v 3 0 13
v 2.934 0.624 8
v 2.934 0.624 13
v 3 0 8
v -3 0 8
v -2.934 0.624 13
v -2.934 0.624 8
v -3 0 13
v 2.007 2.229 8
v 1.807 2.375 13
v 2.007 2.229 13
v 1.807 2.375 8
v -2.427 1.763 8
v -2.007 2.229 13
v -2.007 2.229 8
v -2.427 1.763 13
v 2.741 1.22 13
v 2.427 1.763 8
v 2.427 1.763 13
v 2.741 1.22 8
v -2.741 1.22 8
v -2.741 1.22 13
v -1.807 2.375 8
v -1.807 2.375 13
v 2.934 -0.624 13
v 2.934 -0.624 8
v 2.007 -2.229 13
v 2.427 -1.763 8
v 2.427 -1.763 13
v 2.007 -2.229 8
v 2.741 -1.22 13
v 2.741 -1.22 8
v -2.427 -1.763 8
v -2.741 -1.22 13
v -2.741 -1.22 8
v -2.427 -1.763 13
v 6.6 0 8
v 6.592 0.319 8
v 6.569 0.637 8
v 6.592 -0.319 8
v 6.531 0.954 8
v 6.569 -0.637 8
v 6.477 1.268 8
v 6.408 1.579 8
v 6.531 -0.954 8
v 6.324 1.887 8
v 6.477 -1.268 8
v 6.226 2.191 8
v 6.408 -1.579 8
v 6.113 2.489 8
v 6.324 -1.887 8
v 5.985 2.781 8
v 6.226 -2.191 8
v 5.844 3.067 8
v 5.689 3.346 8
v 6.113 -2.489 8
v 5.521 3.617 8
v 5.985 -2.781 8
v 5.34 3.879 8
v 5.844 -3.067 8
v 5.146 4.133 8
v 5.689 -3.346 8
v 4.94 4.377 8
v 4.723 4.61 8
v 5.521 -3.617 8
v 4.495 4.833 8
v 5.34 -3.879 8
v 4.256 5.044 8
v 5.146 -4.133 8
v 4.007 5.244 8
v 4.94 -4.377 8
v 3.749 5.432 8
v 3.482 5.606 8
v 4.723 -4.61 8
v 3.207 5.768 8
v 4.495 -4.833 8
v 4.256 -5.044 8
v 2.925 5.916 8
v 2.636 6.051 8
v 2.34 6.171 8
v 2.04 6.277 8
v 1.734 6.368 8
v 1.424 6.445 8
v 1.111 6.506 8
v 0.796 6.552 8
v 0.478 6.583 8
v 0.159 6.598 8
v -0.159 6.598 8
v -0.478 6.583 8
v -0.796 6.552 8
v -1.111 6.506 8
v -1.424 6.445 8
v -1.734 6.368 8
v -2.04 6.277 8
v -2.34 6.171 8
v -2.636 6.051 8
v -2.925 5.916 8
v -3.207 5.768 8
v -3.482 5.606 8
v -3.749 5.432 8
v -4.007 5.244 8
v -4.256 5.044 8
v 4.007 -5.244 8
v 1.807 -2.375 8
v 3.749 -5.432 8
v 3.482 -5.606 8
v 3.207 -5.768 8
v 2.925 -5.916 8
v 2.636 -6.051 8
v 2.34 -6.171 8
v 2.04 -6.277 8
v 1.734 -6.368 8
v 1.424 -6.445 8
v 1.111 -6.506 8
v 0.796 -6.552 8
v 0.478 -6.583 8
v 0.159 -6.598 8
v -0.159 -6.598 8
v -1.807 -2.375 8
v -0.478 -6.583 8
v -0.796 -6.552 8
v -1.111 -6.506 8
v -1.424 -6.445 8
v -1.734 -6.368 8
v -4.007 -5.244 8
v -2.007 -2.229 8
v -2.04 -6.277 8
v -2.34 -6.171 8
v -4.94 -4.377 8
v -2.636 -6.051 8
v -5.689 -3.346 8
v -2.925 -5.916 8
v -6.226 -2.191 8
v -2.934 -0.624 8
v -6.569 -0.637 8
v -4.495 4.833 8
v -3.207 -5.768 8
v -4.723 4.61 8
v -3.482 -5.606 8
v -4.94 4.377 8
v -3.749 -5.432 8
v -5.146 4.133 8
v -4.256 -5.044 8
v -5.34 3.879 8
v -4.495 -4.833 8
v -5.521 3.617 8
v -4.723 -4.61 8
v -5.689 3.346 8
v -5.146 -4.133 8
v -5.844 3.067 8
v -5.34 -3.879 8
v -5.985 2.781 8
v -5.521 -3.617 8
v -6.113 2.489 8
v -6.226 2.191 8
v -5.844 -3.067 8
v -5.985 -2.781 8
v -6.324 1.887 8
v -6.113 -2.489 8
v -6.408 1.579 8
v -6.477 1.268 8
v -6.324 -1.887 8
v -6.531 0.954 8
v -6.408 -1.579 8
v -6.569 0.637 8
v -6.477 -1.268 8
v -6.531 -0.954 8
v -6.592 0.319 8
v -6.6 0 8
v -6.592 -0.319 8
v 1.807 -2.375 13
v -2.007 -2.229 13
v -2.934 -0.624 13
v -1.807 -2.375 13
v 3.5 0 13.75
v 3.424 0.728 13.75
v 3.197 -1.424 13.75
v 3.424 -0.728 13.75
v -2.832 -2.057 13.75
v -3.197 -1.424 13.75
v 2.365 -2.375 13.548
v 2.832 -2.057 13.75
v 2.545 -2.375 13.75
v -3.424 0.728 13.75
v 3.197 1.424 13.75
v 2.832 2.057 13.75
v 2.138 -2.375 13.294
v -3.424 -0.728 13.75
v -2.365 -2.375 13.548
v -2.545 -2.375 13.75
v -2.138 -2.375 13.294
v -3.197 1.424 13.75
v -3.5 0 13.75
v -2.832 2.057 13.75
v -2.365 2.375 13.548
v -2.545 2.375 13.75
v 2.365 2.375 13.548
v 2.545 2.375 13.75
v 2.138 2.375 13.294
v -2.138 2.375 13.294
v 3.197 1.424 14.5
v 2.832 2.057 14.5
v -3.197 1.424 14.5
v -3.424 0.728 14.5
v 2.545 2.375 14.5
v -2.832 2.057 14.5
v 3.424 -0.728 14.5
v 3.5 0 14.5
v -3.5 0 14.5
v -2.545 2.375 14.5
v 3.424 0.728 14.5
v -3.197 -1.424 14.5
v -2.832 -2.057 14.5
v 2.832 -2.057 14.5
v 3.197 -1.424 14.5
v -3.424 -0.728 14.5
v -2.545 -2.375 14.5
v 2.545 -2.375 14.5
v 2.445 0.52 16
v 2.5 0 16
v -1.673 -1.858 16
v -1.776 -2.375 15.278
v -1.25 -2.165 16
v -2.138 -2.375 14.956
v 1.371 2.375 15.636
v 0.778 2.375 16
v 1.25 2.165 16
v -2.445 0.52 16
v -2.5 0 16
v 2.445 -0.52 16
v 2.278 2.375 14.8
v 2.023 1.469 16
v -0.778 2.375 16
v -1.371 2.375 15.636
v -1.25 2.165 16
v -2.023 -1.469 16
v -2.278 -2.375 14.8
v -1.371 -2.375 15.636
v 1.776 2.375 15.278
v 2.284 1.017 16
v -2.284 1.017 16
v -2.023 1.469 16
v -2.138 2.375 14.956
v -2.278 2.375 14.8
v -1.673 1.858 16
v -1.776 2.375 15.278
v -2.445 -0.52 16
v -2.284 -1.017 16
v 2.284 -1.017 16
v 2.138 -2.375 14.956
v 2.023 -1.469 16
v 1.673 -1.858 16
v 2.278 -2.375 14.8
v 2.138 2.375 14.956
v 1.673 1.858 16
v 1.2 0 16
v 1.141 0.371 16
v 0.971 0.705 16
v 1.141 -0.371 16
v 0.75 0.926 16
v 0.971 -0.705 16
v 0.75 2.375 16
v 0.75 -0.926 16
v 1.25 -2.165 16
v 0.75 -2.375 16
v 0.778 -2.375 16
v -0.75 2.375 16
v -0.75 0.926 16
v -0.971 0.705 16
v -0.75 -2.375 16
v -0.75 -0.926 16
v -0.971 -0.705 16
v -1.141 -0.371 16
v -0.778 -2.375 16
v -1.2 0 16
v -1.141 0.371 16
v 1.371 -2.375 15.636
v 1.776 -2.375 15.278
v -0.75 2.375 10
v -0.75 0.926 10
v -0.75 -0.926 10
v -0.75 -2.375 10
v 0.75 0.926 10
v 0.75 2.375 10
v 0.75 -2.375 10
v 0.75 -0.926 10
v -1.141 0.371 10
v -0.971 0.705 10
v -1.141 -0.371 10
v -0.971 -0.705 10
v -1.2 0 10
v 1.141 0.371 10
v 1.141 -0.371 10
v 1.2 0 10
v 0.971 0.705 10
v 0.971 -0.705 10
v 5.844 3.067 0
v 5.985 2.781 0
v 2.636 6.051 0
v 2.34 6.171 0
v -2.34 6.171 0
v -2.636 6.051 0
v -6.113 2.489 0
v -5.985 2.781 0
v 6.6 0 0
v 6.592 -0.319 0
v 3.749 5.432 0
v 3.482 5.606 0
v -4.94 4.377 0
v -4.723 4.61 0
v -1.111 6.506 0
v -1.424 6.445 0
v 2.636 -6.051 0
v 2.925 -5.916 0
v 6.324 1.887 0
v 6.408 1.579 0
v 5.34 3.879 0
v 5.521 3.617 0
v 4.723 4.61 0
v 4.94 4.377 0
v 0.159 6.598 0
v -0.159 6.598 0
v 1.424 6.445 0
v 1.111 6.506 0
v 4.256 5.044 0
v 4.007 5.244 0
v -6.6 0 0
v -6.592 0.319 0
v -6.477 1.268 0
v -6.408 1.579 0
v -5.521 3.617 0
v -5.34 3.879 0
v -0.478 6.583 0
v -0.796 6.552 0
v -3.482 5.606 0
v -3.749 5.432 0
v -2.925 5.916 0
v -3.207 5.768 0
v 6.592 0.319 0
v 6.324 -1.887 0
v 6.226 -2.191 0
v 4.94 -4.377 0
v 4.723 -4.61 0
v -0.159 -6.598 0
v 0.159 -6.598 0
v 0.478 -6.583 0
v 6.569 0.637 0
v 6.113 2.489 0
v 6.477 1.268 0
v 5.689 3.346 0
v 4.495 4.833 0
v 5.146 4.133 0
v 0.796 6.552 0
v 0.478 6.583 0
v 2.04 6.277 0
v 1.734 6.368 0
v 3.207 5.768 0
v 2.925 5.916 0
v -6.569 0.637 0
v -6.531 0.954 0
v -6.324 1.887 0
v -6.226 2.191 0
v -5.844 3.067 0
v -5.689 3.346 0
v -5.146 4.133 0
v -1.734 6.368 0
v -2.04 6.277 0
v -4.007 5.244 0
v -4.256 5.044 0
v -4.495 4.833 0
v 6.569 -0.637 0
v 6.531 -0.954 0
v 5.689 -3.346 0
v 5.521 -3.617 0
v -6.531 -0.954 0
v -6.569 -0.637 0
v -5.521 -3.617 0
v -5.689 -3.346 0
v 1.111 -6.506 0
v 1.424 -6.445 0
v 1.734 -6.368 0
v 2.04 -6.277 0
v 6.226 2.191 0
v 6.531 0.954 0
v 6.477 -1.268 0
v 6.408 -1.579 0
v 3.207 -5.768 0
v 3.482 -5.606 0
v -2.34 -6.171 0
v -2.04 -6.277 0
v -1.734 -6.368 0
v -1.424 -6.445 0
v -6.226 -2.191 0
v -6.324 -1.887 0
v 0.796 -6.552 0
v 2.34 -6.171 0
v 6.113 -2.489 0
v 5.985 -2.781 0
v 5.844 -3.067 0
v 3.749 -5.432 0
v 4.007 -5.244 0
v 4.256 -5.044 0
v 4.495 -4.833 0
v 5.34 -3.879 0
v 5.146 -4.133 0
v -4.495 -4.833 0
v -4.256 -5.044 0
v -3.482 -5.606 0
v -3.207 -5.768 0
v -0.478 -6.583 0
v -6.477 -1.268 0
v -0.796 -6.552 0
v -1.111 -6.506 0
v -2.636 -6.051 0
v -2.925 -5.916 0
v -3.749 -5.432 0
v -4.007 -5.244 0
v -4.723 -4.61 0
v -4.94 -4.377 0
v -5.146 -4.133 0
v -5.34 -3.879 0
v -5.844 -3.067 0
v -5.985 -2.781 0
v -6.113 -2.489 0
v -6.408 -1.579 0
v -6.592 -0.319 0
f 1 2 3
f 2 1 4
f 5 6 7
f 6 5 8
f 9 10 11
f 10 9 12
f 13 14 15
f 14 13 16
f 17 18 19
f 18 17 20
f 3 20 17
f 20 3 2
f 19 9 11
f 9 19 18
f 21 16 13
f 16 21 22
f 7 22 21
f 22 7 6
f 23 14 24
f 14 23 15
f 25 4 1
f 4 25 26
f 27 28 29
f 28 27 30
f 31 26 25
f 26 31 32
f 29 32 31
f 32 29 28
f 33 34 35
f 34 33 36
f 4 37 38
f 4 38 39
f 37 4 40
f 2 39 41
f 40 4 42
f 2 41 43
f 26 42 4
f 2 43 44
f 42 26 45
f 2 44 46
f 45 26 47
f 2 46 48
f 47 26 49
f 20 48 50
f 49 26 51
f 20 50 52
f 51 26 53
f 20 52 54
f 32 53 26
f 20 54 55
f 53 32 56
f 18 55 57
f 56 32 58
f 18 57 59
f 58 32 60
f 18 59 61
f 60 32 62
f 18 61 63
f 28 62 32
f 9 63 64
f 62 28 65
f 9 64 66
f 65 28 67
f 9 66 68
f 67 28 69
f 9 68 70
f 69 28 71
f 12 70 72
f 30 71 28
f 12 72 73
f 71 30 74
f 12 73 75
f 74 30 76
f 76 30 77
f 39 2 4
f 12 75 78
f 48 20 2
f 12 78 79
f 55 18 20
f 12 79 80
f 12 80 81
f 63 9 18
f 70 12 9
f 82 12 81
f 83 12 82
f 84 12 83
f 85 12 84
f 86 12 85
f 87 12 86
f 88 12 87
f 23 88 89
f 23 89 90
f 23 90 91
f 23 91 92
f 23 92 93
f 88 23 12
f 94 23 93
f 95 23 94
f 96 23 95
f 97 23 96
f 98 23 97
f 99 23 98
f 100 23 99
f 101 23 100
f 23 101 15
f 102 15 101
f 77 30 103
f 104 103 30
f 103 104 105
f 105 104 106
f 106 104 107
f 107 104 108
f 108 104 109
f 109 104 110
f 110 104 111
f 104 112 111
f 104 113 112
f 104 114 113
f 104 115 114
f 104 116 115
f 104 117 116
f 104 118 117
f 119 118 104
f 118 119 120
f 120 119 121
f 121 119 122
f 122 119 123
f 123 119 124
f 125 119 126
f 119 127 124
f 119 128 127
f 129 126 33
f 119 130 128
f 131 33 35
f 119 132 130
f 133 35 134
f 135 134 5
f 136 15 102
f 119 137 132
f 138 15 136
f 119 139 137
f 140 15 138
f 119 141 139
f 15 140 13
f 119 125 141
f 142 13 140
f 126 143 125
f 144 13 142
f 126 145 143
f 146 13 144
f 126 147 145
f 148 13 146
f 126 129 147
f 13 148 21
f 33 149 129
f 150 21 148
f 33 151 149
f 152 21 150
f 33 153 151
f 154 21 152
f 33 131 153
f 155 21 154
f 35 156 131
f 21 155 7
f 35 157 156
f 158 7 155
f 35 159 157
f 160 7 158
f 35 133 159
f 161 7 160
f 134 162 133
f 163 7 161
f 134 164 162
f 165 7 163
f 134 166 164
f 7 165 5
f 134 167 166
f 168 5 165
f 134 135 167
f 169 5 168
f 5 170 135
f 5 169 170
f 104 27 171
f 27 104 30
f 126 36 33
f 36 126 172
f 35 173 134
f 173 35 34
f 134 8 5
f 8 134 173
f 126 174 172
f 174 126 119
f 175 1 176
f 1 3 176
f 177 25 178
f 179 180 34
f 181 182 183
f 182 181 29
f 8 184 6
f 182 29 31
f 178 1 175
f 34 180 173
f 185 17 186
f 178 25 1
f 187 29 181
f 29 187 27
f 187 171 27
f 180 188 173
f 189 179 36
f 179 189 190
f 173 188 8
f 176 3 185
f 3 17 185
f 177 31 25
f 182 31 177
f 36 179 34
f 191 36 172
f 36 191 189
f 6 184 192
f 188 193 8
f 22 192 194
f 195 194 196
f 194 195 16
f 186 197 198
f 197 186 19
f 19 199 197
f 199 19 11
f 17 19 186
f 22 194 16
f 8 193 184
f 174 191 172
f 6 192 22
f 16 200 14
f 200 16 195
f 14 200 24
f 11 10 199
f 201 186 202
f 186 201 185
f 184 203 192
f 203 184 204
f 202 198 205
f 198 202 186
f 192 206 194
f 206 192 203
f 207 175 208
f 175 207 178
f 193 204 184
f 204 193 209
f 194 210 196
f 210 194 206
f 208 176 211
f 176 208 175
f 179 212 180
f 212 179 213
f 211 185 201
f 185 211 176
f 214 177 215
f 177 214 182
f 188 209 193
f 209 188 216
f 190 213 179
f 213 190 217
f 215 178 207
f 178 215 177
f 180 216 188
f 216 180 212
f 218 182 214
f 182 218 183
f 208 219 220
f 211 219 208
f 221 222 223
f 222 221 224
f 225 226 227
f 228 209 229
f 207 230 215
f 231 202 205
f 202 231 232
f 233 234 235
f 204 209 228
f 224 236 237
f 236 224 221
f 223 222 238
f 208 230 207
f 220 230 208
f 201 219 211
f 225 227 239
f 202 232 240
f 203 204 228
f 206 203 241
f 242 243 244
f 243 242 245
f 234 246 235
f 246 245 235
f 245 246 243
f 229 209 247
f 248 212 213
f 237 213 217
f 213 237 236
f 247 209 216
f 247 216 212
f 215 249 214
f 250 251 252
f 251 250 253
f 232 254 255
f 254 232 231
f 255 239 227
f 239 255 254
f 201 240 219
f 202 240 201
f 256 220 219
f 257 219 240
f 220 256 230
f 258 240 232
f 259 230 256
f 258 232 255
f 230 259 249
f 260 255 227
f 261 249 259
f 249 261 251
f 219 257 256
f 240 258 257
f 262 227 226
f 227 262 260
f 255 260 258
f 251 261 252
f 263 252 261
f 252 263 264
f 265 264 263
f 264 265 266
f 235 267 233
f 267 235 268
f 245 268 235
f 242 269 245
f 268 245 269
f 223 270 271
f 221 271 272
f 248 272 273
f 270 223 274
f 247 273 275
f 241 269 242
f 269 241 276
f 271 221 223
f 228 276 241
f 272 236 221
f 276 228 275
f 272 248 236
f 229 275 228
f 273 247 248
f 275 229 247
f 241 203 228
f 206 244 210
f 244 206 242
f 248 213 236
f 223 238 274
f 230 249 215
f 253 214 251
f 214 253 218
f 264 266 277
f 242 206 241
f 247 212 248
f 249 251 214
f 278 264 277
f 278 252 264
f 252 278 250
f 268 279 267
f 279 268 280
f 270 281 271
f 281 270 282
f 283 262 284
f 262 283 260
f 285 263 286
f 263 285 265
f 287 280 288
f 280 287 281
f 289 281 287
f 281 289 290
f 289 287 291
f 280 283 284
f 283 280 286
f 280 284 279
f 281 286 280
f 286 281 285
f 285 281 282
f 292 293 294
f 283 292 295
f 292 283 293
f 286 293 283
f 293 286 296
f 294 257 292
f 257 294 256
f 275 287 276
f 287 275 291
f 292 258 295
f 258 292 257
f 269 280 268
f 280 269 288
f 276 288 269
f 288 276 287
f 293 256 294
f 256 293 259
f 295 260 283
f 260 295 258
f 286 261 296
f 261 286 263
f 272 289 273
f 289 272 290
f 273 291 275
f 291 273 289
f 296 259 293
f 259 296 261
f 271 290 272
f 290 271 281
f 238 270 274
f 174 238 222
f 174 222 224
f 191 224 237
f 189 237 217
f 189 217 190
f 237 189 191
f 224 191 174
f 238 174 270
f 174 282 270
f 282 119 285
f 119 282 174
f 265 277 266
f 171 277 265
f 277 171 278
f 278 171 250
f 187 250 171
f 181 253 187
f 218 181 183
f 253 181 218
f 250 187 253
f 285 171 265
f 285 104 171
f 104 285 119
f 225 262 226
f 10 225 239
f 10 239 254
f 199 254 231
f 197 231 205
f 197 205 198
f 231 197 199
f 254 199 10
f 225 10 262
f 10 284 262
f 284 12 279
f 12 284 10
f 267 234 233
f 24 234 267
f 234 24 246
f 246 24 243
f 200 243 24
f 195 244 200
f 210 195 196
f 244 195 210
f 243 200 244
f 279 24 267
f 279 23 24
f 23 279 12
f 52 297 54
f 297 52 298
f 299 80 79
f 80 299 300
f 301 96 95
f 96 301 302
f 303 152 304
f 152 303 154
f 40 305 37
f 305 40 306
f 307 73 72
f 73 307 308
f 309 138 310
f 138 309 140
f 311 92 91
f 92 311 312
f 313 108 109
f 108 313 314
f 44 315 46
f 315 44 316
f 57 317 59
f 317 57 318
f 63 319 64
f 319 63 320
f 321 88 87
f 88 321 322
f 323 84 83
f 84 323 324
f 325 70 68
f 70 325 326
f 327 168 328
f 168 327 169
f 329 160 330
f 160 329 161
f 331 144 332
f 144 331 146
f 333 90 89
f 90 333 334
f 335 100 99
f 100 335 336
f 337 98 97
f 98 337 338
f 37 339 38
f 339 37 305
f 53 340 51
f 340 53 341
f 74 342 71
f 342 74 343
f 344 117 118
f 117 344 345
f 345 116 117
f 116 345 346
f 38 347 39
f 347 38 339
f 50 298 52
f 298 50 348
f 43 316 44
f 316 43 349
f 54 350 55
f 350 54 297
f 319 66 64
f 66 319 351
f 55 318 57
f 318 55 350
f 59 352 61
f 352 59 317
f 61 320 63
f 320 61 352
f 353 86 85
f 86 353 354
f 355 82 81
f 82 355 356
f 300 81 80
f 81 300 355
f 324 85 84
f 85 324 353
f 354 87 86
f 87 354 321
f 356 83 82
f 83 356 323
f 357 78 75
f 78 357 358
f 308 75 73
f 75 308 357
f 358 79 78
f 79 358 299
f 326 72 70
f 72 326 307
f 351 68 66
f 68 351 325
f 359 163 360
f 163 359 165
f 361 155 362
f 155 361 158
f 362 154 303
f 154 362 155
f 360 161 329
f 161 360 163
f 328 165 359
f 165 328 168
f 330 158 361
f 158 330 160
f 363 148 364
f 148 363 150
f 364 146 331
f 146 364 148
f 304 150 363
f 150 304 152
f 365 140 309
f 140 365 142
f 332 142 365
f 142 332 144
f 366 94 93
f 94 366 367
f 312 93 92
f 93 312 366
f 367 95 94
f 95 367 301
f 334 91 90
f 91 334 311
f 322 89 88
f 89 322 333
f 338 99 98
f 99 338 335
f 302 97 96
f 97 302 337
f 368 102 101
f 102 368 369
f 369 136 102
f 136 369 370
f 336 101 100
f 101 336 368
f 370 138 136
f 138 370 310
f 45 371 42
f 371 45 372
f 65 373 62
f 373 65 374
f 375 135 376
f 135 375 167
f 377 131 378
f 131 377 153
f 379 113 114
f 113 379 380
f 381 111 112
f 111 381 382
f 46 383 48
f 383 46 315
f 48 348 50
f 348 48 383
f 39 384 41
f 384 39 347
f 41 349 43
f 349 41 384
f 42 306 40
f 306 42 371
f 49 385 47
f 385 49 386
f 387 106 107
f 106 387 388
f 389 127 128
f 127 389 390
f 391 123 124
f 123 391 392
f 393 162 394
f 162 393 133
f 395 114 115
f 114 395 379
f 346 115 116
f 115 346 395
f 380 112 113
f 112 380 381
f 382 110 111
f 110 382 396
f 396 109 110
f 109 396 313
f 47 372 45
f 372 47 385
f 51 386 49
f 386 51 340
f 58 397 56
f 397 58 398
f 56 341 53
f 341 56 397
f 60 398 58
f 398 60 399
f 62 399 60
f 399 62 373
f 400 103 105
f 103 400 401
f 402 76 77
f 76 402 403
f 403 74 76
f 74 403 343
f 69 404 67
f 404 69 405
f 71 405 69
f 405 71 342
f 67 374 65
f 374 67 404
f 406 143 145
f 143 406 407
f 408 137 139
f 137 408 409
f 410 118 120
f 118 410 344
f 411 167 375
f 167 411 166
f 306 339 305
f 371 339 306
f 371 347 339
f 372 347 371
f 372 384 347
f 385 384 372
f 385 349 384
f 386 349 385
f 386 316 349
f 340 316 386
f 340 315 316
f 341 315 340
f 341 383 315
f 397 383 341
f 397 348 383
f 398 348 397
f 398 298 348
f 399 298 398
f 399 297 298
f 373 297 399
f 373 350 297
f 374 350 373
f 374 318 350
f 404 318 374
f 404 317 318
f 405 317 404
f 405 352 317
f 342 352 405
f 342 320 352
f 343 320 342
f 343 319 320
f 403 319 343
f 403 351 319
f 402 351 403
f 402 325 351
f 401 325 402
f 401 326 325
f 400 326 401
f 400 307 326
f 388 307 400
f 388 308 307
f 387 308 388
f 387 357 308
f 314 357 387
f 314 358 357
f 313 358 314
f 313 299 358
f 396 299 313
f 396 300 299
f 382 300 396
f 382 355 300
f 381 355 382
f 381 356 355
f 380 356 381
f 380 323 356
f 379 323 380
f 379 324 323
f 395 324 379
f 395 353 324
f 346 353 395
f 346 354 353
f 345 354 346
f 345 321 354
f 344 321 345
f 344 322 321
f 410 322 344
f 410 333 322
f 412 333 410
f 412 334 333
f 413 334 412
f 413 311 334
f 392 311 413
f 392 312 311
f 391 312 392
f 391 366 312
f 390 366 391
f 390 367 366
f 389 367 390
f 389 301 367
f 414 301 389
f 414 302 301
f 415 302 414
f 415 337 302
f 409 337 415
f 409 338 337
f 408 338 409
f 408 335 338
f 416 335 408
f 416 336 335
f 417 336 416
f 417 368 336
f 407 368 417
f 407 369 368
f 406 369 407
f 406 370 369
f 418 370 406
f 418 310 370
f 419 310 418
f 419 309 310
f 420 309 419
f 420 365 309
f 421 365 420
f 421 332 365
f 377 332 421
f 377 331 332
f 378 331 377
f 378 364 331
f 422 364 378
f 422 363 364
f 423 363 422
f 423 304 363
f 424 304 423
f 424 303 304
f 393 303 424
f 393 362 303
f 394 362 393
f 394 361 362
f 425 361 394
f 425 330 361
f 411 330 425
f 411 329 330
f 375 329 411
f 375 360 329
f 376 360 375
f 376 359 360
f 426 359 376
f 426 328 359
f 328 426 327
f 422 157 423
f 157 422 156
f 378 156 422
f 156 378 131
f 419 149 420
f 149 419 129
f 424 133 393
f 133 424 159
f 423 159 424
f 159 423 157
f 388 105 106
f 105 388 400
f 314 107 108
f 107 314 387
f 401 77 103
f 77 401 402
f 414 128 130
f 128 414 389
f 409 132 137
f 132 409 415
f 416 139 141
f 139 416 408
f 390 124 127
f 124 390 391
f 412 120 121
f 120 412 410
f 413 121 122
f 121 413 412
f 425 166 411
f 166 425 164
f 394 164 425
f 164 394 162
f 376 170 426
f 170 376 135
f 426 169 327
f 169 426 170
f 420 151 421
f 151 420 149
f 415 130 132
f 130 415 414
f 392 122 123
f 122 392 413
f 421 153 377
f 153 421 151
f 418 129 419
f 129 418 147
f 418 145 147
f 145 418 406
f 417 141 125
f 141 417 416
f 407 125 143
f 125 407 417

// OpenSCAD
$fn=130;

zylD=6.6;   //Zylinder-Durchmesser
zylH=8;    //Zylinder-Höhe
pinD=3;     //PIN-Durchmesser
pintack(h=8);//Pin-Höhe


module pin(h=10, r=4, lh=3, lt=1) { 
    pin_vertical(h, r, lh, lt);
}

module pintack(h=10, r=pinD, lh=3, lt=1,) {
   union() {
    cylinder(h=zylH, r=zylD);
    translate([0, 0, zylH]) pin(h, r, lh, lt);
  }
}

module pin_vertical(h=10, r=4, lh=3, lt=1) {

  difference() {
    pin_solid(h, r, lh, lt);
    translate([-r*0.5/2, -(r*2+lt*2)/2, h/4]) cube([r*0.5, r*2+lt*2, h]);
    translate([0, 0, h/4]) cylinder(h=h+lh, r=r/2.5, $fn=20);
    translate([-r*2, -lt-r*1.125, -1]) cube([r*4, lt*2, h+2]);
    translate([-r*2, -lt+r*1.125, -1]) cube([r*4, lt*2, h+2]);
  }
}

module pin_solid(h=10, r=4, lh=3, lt=1) {
  union() {

    cylinder(h=h-lh, r=r, $fn=30);
    translate([0, 0, h-lh]) cylinder(h=lh*0.25, r1=r, r2=r+(lt/2), $fn=30);
    translate([0, 0, h-lh+lh*0.25]) cylinder(h=lh*0.25, r=r+(lt/2), $fn=30);    
    translate([0, 0, h-lh+lh*0.50]) cylinder(h=lh*0.50, r1=r+(lt/2), r2=r-(lt/2), $fn=30);    
  }
}
